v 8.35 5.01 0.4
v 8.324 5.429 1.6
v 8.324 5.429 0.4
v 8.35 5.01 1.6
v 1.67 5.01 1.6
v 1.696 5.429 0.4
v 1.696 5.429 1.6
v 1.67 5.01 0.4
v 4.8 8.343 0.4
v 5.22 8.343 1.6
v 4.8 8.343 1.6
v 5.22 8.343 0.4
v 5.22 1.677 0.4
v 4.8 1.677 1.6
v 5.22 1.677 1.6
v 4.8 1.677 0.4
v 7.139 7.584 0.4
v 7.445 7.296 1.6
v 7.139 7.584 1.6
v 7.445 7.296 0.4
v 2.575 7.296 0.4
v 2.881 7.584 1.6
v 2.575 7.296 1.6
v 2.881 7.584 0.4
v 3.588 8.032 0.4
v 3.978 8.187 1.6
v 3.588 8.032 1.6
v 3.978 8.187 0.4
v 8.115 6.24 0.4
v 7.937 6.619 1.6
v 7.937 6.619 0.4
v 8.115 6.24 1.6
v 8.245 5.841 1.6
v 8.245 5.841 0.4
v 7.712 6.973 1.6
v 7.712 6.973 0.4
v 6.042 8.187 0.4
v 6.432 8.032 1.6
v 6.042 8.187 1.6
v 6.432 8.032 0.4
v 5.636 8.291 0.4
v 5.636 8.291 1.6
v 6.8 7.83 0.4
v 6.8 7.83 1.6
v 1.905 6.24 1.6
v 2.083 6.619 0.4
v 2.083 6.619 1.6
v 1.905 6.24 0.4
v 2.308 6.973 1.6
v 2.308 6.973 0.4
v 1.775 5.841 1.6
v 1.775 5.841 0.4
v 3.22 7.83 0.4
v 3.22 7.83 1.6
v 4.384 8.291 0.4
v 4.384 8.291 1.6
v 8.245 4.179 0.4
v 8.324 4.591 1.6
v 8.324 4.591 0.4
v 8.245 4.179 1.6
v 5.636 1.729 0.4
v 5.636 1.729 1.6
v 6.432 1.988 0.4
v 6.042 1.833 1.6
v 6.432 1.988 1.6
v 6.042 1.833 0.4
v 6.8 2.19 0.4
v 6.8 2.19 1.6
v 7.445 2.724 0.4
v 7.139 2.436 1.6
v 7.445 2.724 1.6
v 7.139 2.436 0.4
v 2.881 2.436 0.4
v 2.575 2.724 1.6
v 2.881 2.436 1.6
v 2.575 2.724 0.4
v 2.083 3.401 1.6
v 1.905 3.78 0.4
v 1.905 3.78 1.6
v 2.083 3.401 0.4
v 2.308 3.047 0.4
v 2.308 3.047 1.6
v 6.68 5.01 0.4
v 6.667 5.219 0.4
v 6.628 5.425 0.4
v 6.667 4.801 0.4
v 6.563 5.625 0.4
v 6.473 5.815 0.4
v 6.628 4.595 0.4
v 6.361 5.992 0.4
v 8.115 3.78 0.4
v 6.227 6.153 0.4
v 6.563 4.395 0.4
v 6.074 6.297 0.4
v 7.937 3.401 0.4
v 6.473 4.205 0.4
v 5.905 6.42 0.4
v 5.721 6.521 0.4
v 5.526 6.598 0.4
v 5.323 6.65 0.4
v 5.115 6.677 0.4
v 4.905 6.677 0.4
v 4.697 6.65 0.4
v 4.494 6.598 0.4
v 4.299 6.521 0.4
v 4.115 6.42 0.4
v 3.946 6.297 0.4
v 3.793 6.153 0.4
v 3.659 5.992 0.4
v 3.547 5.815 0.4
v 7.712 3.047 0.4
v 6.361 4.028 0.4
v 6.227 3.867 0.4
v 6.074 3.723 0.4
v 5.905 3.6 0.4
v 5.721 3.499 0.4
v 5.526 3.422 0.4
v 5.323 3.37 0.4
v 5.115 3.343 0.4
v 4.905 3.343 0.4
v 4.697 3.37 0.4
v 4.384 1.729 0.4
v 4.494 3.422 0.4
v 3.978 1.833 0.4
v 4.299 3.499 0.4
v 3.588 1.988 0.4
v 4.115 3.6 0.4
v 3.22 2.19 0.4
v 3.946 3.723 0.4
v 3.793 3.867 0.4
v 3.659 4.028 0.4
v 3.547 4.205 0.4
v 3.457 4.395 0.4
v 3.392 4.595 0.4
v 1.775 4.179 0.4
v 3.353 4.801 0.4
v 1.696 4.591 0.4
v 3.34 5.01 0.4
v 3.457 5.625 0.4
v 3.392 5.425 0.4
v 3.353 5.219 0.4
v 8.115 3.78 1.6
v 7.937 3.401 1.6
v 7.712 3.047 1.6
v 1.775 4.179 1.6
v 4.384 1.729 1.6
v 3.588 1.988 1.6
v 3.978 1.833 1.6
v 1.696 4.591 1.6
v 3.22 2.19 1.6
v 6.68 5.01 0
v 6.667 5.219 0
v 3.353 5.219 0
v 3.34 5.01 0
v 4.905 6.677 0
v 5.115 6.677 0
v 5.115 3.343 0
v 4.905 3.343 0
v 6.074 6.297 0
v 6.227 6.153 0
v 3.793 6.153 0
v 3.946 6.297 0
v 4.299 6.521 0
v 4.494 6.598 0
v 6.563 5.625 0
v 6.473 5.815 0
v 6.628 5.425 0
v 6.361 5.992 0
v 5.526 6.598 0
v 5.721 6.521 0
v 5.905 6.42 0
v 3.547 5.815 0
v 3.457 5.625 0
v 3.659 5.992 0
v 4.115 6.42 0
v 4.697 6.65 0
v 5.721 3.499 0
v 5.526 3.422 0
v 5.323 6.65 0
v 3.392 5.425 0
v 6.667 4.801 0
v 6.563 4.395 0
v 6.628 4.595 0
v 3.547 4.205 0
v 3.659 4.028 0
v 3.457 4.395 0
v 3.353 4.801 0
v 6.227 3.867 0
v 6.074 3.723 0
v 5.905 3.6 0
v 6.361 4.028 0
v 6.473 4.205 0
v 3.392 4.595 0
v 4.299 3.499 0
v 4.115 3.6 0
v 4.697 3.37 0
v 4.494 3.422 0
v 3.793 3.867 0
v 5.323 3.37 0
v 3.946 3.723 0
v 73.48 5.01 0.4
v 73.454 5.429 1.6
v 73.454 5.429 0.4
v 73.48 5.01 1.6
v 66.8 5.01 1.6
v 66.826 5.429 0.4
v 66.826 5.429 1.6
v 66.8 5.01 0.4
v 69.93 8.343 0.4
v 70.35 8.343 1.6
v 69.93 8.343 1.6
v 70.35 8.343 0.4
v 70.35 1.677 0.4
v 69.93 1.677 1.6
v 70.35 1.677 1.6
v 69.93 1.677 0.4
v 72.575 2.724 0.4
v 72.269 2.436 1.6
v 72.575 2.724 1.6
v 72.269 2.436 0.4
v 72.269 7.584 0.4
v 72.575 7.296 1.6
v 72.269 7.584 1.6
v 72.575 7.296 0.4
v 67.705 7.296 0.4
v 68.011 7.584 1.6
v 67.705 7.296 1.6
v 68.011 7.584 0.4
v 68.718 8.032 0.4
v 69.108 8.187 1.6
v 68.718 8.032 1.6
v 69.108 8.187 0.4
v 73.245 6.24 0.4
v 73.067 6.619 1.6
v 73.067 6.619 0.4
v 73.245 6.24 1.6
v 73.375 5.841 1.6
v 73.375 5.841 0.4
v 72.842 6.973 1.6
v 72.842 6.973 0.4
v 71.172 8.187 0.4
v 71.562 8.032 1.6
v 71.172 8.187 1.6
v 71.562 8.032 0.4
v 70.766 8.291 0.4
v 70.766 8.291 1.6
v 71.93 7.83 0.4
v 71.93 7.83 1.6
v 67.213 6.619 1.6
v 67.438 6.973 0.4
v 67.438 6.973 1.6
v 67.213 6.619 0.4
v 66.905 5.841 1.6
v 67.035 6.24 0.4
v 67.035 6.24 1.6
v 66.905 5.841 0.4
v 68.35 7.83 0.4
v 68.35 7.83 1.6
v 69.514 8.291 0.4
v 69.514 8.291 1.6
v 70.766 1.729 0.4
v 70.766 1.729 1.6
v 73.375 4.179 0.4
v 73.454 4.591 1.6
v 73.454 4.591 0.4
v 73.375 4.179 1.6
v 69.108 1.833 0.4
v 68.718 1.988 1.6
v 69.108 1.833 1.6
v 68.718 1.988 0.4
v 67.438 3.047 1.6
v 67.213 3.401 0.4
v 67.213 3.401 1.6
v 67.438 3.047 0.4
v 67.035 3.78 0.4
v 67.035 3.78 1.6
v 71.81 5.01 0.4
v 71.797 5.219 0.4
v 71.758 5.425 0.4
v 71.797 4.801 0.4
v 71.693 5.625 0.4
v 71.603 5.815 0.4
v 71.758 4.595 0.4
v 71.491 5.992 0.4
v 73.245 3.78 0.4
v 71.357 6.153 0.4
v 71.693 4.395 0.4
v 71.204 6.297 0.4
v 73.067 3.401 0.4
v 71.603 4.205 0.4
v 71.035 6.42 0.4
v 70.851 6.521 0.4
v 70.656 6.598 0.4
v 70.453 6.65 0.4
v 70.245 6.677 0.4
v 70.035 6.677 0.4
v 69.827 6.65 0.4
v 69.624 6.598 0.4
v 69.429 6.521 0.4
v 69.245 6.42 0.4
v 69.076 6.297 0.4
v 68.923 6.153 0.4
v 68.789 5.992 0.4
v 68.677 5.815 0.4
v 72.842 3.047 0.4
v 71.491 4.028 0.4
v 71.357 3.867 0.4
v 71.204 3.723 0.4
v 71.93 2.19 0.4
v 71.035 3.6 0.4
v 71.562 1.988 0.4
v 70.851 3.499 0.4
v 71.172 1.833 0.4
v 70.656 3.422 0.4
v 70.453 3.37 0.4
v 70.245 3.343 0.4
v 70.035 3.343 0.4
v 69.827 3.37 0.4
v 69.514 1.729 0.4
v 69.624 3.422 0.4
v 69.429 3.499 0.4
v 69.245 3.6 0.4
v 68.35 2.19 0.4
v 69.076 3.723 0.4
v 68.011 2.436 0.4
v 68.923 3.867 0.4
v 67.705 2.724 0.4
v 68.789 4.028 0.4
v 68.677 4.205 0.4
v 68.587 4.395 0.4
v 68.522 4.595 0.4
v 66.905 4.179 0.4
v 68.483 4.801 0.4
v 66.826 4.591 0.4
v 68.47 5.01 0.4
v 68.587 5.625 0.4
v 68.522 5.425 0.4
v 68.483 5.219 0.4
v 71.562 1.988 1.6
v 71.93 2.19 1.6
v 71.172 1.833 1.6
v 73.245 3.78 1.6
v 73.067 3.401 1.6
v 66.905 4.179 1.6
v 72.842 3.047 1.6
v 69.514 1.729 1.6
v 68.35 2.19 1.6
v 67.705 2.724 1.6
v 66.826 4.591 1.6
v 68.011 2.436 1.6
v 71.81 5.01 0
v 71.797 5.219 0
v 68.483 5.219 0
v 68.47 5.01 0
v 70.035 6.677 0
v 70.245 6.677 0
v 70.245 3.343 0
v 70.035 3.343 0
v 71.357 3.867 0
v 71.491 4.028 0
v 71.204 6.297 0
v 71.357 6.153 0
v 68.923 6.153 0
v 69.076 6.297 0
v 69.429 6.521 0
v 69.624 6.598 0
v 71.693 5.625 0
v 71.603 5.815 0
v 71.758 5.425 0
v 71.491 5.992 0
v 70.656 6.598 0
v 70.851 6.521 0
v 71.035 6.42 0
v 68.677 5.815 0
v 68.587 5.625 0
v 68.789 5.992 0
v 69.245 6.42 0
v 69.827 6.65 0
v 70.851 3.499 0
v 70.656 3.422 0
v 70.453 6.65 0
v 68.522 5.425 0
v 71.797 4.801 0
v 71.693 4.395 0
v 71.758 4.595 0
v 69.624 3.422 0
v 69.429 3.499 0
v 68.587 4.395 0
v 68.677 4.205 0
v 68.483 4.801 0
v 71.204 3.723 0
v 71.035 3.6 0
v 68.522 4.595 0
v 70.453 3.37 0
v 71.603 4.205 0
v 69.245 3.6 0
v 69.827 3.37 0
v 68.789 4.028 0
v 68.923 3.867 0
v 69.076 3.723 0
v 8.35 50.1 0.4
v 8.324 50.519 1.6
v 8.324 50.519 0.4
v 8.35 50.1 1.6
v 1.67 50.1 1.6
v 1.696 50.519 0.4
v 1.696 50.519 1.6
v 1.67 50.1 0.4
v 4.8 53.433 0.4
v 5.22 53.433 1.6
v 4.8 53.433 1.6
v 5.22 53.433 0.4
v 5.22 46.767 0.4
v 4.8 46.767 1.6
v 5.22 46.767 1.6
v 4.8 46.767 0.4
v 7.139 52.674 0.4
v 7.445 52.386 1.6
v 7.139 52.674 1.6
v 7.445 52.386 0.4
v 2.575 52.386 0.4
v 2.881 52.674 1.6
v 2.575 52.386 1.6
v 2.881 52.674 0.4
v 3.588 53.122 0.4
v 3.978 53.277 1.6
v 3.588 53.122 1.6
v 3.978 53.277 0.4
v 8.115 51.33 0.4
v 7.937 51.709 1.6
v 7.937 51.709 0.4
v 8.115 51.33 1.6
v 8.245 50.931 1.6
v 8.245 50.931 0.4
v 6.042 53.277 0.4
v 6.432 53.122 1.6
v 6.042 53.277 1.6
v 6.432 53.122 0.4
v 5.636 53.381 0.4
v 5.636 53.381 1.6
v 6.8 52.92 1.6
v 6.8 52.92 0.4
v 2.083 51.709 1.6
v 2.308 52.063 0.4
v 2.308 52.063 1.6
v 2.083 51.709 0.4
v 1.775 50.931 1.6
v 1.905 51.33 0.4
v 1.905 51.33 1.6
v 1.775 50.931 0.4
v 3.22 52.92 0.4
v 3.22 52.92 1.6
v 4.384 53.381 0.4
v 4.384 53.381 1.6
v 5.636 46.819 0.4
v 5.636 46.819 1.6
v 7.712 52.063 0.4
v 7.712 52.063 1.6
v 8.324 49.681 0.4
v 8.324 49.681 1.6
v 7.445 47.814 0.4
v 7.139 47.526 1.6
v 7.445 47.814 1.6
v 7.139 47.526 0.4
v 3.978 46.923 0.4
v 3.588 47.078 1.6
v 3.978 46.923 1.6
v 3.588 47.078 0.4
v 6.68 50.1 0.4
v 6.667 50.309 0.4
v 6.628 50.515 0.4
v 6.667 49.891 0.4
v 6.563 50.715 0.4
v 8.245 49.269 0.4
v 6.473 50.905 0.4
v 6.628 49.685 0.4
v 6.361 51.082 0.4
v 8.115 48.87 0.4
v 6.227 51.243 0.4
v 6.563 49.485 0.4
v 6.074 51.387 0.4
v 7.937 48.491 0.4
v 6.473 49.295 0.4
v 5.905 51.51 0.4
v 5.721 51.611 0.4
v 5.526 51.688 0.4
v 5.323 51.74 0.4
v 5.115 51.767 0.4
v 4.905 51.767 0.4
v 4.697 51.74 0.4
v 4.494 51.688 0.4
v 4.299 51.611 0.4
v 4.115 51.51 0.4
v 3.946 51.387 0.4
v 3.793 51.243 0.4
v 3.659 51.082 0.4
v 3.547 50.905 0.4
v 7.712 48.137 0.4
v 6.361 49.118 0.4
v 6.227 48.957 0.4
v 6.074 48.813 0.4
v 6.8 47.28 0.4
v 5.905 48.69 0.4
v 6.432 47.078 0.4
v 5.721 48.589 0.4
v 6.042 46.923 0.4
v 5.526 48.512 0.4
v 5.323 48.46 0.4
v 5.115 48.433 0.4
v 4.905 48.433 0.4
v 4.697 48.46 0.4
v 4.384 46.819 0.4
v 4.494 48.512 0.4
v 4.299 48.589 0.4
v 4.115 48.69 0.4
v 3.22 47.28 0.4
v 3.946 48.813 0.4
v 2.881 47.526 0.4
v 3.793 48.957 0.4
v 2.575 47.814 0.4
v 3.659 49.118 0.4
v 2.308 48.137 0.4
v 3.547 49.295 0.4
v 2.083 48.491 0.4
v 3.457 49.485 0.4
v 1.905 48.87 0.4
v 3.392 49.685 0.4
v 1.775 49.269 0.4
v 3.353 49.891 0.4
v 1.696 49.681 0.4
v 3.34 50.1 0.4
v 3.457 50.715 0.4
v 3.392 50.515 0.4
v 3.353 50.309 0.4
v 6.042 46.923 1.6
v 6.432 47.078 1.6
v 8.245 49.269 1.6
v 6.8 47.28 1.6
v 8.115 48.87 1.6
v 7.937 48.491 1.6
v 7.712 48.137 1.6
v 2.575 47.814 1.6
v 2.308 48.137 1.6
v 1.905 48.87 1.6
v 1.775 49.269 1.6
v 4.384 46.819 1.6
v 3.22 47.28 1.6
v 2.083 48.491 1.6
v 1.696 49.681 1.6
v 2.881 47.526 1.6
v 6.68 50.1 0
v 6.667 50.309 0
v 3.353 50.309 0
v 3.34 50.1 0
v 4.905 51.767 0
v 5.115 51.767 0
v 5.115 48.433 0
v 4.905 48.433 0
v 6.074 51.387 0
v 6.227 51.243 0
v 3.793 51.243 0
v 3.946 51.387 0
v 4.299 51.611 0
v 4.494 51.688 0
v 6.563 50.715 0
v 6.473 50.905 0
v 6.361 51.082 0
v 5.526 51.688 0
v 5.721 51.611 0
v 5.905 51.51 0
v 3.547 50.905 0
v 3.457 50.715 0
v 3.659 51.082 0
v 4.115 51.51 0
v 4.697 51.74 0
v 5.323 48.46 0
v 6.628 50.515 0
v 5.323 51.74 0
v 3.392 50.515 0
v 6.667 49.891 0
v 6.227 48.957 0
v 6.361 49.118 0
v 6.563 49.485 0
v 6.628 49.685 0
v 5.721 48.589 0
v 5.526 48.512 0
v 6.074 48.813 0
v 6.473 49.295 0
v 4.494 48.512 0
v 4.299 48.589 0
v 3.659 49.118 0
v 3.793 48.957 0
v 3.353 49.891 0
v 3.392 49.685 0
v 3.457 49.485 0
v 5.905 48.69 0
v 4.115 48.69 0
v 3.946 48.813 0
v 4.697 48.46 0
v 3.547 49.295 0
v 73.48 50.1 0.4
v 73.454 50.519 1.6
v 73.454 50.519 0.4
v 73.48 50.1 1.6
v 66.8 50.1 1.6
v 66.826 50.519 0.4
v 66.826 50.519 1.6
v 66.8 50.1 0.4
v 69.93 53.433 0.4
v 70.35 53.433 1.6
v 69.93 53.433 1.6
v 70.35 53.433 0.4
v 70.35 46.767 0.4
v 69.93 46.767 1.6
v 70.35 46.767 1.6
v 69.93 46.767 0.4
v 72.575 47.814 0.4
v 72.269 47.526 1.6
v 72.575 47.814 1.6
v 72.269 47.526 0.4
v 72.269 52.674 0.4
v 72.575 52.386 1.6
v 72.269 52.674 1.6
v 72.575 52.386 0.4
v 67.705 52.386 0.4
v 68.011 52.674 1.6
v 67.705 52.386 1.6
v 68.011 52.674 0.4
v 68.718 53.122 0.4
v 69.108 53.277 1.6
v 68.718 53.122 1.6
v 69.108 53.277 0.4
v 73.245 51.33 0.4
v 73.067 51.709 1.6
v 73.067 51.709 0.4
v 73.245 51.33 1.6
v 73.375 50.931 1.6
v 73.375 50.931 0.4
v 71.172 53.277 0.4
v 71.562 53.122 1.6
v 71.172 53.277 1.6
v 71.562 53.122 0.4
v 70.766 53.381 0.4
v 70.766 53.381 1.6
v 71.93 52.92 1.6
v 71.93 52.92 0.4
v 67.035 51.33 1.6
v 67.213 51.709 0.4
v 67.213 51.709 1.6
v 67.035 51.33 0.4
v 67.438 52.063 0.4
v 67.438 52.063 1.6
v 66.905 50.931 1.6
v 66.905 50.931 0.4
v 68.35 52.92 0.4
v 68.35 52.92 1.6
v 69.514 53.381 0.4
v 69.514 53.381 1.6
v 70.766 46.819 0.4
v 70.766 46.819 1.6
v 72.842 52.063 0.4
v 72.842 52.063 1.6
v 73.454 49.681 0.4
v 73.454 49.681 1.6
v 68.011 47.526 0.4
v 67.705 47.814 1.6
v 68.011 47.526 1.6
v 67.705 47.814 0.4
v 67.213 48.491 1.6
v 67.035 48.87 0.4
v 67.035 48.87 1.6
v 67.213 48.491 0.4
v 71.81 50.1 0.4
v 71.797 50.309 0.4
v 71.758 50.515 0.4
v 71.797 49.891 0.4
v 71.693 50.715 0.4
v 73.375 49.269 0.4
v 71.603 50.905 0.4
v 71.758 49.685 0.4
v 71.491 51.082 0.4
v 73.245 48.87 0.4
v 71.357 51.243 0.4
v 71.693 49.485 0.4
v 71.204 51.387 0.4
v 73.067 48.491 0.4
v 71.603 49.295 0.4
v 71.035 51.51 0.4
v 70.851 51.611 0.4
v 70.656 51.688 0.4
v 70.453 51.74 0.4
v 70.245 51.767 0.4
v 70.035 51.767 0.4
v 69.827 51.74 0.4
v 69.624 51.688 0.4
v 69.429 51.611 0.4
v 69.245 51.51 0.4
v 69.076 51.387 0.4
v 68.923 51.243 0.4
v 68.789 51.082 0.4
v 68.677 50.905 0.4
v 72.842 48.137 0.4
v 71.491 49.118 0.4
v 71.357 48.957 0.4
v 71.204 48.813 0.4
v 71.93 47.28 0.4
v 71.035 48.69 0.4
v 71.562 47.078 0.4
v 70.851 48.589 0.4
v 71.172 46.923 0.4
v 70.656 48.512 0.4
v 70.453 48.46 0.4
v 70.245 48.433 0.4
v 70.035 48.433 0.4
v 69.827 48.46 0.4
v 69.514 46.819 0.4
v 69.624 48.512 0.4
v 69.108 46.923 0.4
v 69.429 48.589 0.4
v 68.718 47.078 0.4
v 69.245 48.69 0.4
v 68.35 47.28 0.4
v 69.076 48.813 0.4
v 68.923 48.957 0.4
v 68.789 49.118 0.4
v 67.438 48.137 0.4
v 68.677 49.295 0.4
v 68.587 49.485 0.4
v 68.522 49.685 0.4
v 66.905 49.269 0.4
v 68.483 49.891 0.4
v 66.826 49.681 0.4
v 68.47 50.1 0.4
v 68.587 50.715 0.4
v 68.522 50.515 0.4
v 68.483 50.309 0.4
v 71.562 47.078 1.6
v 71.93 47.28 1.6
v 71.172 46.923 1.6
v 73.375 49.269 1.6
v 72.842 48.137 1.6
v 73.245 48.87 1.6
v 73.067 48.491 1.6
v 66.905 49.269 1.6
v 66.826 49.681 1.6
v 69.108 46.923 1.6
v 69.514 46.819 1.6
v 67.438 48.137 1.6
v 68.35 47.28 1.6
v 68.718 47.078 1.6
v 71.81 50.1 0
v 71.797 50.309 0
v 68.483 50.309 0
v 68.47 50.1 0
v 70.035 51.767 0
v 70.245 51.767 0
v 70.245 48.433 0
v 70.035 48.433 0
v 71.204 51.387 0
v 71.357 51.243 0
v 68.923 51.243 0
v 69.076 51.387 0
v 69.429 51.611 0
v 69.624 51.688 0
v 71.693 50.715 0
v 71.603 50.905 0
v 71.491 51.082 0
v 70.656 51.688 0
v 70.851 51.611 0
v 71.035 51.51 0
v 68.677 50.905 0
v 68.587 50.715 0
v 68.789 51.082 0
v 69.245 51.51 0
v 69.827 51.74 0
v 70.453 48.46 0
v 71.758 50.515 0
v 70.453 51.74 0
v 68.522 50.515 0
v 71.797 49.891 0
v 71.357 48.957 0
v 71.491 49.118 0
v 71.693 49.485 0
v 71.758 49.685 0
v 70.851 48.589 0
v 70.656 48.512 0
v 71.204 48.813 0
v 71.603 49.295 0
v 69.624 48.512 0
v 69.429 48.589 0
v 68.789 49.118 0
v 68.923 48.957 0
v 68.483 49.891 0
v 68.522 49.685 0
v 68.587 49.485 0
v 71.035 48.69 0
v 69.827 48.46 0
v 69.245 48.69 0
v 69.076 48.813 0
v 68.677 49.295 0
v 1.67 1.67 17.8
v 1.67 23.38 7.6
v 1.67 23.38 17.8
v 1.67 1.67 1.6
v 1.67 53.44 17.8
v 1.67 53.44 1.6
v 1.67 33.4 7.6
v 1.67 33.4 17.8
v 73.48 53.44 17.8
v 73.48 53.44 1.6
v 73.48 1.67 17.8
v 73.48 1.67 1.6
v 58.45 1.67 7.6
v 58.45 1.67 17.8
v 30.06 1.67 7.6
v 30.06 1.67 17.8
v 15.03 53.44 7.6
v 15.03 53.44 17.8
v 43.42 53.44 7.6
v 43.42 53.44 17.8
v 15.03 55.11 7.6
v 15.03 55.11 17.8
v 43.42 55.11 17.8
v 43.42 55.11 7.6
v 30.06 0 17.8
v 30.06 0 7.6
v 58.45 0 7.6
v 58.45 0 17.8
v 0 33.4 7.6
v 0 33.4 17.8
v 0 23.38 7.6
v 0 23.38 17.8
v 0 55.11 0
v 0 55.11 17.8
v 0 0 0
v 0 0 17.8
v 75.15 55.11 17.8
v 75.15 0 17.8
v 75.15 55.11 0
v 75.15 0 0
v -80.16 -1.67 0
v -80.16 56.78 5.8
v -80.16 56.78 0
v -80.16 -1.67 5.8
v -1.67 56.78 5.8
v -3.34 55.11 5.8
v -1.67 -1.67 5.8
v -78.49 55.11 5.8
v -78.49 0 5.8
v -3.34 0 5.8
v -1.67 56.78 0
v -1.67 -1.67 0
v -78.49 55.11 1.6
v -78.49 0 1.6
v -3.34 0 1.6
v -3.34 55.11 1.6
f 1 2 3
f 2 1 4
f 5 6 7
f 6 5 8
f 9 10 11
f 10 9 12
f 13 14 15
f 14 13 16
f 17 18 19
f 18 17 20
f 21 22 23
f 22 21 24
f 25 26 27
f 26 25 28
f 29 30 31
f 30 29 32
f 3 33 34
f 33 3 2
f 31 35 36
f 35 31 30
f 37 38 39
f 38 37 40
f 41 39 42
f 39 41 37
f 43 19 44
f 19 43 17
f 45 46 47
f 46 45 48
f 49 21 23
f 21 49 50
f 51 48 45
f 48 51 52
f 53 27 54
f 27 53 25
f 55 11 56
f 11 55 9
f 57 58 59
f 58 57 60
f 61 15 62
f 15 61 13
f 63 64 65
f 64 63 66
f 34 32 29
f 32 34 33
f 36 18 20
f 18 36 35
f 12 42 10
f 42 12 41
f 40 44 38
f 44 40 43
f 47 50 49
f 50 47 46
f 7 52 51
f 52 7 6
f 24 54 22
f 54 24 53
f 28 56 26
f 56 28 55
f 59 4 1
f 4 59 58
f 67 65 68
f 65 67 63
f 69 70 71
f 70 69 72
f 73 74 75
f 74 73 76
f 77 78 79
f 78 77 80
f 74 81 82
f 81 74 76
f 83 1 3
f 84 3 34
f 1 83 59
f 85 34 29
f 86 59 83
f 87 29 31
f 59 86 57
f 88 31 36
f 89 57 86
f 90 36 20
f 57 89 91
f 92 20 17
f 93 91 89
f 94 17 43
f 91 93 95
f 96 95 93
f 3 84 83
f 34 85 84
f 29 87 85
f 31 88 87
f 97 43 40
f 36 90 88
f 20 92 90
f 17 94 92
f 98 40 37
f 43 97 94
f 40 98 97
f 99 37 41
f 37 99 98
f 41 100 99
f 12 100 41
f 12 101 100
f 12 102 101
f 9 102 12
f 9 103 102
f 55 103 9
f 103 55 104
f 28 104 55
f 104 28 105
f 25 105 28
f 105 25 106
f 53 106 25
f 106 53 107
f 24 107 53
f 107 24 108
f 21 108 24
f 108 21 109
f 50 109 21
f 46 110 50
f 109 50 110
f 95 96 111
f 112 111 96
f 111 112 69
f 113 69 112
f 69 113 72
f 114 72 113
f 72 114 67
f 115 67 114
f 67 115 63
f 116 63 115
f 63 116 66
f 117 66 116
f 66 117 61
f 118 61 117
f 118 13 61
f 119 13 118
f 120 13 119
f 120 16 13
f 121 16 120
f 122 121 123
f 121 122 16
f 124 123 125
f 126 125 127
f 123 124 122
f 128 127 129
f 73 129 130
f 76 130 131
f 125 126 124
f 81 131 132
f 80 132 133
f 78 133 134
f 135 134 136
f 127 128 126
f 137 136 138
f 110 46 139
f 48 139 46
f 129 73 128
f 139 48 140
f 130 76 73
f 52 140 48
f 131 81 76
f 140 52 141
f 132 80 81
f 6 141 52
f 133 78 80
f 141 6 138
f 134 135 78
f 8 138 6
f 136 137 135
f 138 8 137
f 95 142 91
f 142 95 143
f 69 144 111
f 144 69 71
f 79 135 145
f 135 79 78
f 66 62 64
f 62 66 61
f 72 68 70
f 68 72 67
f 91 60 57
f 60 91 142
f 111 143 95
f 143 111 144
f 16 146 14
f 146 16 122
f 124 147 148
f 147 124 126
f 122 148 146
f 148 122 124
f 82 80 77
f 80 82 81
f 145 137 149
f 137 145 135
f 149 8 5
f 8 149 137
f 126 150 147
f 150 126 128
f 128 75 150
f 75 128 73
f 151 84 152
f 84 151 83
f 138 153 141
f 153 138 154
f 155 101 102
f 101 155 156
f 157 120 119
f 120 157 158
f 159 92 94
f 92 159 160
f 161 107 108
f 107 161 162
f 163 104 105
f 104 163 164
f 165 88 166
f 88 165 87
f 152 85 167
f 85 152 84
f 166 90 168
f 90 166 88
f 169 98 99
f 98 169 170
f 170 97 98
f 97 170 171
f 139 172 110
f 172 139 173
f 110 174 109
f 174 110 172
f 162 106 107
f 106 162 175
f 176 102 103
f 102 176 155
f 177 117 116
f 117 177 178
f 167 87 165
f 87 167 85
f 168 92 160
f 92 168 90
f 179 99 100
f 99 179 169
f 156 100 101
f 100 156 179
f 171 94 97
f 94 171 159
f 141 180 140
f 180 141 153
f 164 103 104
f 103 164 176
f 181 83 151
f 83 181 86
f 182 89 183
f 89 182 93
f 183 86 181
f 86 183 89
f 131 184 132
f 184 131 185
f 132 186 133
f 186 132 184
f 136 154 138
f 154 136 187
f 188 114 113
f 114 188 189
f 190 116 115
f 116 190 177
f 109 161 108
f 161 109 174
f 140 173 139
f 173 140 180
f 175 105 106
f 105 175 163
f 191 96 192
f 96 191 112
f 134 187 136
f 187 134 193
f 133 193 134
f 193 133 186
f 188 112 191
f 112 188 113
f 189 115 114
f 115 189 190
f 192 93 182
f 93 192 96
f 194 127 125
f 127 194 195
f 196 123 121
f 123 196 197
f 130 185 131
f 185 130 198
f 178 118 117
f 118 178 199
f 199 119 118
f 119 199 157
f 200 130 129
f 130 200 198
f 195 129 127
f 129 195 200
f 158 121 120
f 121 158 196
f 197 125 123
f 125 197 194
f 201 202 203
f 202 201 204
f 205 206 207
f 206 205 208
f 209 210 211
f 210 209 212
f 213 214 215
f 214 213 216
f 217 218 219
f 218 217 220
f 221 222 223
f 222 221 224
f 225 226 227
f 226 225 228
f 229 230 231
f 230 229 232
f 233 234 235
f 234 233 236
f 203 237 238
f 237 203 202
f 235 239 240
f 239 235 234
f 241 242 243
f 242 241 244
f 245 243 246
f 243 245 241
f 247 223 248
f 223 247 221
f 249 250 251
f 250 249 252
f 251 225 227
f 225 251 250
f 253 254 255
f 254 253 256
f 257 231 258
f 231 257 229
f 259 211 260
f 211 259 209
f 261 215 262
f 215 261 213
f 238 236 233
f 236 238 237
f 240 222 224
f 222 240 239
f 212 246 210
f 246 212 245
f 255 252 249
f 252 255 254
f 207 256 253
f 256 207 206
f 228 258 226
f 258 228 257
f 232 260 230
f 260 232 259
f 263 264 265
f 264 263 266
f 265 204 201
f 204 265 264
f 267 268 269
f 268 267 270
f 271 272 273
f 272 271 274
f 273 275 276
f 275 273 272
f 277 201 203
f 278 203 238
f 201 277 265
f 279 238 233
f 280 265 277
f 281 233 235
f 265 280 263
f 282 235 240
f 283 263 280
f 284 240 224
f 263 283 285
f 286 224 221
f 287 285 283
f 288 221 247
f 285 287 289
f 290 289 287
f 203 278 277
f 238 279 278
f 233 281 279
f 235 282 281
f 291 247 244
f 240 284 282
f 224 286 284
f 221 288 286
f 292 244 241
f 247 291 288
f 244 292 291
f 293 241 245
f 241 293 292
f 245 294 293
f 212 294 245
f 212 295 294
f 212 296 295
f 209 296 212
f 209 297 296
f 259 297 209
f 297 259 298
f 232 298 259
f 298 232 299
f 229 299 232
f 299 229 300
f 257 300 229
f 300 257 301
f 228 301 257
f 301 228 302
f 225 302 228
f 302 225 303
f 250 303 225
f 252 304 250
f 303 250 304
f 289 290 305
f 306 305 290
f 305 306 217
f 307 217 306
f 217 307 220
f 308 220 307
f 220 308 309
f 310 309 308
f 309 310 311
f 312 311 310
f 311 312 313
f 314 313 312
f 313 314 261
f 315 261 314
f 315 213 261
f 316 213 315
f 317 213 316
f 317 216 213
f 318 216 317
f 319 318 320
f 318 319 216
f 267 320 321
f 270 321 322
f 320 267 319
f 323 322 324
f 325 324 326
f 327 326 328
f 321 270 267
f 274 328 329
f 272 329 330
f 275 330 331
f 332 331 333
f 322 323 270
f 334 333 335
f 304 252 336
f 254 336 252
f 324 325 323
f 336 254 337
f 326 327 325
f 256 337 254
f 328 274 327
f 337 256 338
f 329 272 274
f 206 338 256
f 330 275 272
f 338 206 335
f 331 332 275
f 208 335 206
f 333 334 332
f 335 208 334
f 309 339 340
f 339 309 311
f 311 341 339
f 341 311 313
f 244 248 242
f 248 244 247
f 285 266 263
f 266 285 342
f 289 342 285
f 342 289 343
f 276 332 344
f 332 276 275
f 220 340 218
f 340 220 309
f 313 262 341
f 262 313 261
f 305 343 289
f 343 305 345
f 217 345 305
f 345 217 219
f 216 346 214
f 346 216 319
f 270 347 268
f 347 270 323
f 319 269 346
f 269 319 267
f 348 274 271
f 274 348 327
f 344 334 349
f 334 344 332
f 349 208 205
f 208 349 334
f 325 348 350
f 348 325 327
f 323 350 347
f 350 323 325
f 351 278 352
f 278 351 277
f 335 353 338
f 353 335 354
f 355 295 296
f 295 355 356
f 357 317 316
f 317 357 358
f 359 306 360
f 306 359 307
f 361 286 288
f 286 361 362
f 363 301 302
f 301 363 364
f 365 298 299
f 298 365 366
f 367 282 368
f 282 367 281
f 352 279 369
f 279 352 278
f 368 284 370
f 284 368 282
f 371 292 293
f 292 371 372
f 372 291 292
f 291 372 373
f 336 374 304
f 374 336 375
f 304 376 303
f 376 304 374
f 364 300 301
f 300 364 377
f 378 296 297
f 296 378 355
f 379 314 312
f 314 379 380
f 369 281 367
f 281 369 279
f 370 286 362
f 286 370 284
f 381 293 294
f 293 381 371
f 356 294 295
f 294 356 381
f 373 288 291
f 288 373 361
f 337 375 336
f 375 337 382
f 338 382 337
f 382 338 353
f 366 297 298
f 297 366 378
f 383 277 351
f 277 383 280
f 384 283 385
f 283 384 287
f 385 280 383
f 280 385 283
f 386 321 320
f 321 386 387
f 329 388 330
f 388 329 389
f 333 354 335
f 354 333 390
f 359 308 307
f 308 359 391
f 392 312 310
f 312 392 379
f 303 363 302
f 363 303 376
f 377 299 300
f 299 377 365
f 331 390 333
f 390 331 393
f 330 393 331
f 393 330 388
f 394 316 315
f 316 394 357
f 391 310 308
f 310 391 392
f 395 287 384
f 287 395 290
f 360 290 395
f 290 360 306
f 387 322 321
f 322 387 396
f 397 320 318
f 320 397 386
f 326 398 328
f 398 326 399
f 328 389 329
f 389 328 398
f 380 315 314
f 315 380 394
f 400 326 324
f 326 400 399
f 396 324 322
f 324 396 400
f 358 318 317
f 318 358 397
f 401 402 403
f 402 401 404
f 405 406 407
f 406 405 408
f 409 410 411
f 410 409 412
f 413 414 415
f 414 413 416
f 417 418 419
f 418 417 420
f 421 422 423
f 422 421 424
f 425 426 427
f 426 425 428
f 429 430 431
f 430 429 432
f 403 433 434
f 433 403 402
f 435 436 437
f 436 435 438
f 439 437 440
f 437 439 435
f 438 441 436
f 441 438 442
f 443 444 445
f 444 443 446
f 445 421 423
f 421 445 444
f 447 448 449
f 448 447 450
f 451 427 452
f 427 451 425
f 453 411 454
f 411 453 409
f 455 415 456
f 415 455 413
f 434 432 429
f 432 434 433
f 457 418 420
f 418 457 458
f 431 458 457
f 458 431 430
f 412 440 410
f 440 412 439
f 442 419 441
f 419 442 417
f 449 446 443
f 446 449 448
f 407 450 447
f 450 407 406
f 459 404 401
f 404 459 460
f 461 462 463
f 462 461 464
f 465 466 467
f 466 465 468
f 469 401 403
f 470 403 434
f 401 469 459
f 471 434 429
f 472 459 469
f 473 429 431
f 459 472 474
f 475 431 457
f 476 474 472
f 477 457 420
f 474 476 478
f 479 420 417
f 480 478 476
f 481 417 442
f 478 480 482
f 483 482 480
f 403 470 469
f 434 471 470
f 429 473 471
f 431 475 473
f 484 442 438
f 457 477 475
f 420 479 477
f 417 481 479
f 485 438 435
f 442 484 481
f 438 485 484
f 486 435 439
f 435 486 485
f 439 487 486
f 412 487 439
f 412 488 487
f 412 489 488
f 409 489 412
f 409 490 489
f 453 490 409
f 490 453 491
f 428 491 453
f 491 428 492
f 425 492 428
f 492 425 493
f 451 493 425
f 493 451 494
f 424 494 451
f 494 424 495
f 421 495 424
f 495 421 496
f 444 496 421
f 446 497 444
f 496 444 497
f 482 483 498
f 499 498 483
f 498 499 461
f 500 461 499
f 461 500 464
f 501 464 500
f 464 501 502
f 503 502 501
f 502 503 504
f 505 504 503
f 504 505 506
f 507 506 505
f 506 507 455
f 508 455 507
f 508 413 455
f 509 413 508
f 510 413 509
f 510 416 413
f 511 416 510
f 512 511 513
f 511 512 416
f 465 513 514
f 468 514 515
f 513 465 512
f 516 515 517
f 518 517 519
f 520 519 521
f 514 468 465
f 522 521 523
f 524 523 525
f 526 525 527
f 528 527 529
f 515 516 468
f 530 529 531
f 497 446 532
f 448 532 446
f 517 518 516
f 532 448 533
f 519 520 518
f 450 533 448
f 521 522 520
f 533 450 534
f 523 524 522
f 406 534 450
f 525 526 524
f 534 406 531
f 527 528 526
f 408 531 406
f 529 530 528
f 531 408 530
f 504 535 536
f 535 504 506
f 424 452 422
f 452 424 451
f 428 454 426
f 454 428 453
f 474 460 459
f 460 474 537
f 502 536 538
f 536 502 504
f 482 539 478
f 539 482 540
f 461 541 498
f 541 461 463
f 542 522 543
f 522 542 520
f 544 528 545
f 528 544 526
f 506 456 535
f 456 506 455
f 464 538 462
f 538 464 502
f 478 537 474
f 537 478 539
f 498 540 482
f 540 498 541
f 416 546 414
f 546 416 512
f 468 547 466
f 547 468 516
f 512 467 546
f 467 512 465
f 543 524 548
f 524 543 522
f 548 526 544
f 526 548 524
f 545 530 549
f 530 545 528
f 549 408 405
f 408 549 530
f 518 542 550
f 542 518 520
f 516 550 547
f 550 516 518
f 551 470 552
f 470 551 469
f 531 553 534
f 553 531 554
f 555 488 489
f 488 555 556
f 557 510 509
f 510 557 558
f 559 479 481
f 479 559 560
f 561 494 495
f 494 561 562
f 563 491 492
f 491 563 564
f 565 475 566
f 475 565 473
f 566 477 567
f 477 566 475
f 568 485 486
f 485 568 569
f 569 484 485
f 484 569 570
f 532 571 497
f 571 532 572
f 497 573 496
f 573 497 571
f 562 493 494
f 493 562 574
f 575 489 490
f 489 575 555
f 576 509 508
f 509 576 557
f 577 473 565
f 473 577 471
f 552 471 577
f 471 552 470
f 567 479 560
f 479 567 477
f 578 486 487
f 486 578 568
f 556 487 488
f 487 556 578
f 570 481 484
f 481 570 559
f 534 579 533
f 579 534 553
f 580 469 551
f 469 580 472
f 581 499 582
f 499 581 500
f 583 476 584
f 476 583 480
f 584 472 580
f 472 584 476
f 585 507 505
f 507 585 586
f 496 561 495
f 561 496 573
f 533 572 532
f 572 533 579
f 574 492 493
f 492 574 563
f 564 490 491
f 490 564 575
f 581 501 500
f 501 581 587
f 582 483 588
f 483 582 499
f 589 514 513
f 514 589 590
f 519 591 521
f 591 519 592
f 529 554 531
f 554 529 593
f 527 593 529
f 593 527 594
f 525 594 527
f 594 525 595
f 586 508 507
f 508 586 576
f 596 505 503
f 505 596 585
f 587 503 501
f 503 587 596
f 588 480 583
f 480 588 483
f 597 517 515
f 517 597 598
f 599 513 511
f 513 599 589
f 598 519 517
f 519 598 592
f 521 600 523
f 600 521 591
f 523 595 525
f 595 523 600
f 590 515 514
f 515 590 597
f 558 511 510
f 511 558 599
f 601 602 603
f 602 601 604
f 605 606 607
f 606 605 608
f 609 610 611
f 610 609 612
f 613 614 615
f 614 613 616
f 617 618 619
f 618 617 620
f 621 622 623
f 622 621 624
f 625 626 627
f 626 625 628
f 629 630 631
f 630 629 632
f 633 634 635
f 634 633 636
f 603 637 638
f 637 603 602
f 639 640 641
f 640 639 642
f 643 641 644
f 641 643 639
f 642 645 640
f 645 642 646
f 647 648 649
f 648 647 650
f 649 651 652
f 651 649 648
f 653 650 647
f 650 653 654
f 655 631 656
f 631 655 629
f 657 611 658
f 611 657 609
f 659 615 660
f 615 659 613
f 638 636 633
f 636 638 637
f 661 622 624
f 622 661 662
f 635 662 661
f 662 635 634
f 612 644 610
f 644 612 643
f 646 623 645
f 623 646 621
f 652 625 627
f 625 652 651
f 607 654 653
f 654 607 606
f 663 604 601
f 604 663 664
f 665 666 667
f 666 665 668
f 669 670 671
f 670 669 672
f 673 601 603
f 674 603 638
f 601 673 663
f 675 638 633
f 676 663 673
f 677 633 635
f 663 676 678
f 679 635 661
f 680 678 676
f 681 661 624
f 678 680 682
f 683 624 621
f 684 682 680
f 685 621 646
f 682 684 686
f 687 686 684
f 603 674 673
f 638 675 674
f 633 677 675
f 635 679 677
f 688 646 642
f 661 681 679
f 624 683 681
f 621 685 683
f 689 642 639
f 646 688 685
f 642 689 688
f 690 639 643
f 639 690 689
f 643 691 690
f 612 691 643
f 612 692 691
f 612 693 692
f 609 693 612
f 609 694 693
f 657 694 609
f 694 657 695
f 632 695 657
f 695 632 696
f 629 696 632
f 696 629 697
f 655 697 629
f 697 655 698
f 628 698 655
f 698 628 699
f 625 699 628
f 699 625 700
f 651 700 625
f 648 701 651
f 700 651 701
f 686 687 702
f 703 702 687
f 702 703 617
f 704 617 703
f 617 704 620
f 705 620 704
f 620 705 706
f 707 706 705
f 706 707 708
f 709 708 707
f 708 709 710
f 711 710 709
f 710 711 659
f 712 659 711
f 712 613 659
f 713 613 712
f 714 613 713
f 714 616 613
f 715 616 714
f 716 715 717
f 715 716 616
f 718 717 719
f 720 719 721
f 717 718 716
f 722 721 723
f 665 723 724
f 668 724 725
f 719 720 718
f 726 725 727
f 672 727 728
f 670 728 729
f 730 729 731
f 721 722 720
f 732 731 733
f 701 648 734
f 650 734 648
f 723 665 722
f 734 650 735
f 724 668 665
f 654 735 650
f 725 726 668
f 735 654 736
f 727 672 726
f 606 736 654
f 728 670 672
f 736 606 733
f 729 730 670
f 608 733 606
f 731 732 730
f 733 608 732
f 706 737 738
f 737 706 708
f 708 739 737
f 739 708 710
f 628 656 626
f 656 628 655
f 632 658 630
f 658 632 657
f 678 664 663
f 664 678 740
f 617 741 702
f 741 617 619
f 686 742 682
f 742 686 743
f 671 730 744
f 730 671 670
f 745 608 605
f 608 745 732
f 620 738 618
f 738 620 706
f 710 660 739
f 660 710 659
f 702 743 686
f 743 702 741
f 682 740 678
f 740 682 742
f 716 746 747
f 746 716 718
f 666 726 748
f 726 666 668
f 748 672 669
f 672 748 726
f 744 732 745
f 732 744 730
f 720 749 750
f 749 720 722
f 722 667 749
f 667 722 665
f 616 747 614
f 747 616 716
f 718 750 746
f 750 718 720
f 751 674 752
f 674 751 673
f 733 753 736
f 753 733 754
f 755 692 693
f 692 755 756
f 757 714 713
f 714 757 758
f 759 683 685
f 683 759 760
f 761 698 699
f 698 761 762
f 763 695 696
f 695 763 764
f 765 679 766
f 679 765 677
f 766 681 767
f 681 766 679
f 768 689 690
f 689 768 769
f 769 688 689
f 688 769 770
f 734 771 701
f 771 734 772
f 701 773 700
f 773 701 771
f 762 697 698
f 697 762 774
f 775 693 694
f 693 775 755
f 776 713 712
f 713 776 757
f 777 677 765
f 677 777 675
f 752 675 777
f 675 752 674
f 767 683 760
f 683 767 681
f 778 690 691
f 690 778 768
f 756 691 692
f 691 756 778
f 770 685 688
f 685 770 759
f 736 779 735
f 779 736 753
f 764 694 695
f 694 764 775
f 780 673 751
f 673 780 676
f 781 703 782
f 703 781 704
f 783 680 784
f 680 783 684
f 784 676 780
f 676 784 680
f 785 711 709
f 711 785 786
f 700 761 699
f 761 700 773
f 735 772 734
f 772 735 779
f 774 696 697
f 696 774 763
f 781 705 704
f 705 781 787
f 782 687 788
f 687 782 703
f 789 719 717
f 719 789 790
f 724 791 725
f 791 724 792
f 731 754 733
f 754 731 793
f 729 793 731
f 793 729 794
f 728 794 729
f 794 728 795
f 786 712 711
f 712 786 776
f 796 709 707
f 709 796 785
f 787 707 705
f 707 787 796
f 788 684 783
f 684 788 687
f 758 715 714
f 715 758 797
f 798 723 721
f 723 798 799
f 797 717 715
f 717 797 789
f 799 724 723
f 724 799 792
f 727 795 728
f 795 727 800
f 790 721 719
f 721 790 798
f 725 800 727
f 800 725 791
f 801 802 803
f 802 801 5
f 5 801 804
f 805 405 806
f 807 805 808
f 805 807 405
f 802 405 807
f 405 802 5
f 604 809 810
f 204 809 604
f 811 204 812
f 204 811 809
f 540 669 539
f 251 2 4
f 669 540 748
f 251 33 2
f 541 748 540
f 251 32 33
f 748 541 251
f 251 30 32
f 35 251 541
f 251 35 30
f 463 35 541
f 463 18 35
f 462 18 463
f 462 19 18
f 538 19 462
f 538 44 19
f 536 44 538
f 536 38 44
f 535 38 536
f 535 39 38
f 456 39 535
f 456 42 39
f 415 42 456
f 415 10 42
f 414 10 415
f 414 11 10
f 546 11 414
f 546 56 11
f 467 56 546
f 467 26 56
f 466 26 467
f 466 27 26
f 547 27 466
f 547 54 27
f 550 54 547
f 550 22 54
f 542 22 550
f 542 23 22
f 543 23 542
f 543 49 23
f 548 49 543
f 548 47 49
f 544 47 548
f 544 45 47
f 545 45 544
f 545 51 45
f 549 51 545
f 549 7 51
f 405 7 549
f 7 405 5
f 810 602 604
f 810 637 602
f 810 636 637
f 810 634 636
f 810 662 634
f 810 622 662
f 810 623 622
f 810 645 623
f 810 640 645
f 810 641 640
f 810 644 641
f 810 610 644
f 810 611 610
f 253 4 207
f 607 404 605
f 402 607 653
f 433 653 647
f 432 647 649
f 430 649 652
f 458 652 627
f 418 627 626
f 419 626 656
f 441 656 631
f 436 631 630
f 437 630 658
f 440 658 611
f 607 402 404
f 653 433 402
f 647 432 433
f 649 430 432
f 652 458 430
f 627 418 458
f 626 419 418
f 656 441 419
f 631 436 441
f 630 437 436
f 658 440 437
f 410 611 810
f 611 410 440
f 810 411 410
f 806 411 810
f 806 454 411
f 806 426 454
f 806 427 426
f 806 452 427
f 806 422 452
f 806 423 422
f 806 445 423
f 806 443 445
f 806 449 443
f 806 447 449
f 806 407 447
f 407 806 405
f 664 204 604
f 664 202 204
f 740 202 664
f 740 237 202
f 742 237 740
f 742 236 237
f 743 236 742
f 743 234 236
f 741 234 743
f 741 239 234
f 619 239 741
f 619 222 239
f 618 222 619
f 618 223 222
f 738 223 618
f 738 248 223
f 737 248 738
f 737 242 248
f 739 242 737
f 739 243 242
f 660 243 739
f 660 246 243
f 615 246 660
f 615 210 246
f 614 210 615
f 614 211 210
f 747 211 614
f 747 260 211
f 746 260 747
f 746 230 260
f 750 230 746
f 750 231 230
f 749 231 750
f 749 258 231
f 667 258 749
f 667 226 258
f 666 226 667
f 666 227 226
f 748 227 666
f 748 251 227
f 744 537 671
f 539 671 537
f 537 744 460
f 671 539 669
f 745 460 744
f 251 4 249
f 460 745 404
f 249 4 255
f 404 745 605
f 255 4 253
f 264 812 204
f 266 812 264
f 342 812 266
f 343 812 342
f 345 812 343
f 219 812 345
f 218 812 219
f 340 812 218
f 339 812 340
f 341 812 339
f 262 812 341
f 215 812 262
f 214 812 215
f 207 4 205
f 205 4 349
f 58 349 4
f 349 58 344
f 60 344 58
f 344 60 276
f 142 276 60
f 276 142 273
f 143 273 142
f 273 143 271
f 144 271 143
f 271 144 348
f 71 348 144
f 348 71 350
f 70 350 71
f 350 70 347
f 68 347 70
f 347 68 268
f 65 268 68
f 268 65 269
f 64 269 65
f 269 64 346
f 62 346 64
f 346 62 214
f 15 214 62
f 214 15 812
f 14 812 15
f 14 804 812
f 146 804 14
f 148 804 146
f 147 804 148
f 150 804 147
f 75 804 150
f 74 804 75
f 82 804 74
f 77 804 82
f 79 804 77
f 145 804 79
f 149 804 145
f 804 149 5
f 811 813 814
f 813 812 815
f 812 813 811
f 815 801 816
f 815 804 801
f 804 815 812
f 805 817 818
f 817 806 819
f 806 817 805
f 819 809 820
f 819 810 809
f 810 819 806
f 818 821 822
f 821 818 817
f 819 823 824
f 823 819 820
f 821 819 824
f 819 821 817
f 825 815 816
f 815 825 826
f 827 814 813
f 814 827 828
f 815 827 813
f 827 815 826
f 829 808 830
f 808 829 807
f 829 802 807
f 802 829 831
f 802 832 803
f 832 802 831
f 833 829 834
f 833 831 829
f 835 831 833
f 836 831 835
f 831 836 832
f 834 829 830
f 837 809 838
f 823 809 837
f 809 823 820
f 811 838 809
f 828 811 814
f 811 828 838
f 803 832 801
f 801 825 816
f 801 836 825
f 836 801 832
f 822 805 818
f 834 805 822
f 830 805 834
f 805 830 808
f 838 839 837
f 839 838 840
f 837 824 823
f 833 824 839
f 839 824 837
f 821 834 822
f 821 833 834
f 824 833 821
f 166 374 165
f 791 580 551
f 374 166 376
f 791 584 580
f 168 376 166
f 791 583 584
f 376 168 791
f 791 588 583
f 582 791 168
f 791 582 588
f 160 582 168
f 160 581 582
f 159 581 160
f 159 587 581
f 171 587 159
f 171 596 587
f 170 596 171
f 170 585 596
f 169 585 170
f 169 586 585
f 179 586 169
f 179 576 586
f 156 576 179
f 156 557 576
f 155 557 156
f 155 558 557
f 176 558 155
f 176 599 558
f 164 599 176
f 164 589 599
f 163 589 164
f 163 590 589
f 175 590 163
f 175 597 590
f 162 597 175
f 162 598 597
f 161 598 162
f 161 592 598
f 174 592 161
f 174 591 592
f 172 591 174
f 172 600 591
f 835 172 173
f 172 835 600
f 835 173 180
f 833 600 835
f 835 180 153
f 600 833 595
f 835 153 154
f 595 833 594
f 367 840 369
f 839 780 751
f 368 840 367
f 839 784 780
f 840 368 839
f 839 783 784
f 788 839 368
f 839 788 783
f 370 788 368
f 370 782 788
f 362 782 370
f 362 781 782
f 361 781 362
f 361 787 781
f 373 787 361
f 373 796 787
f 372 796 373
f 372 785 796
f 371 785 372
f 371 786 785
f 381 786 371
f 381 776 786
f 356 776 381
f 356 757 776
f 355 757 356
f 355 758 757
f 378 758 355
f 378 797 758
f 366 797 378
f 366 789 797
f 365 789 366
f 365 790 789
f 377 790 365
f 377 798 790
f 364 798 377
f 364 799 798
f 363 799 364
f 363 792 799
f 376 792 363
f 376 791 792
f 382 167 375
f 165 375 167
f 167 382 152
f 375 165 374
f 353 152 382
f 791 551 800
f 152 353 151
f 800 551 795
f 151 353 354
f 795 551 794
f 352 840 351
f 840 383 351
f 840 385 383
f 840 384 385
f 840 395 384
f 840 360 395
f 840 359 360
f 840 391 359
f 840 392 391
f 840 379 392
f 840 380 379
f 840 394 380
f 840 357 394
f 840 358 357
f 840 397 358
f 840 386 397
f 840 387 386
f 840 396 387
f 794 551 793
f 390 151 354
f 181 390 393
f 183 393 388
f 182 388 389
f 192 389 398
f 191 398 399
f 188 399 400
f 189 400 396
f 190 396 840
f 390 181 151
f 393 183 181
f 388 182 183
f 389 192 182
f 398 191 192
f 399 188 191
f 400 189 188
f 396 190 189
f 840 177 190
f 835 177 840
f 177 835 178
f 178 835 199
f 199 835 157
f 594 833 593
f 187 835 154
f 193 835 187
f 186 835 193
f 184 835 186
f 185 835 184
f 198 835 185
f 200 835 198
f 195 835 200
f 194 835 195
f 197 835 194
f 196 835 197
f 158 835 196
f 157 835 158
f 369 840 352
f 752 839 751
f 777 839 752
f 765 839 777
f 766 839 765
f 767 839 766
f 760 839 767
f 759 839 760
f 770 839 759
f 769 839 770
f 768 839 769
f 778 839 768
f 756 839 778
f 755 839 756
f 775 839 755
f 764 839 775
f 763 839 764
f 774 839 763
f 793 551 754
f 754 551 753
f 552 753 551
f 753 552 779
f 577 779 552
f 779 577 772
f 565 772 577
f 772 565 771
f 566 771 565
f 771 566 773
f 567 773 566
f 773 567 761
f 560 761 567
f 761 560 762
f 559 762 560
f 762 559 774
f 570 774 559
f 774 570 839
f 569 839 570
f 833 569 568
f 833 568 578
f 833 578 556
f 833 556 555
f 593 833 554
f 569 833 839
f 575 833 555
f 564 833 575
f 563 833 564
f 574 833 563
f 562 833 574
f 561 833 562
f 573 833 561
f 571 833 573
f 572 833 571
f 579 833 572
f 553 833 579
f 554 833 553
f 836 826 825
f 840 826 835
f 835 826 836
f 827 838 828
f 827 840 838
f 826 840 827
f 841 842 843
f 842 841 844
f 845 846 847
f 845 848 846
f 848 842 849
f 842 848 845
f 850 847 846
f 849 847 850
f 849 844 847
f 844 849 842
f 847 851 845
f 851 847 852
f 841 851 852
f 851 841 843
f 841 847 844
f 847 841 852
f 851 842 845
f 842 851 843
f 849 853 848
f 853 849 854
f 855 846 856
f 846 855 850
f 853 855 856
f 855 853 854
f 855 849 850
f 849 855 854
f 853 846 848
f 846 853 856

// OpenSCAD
first_layer_height = 0.4;
layer_height = 0.6;

bottom_width = first_layer_height + 2*layer_height;
top_width = 2*layer_height;
wall_width = 1.67;

function xy_dim_adj(x) = ceil(x/wall_width)*wall_width;
function  z_dim_adj(z) = ceil(z/layer_height)*layer_height;

box_l = 71;
box_w = 51;
box_h = 16;
box_bt_h = 6;
cap_h = 4;

box_l_adj = xy_dim_adj(box_l);
box_w_adj = xy_dim_adj(box_w);
box_h_adj = z_dim_adj(box_h);
box_bt_h_adj = z_dim_adj(box_bt_h);
cap_h_adj = z_dim_adj(cap_h);

screws_hd = 5.55;
screws_hh = 2.38;
screws_hd_offset = first_layer_height;
screws_d = 3;
screws_xy = [
  [            3*wall_width, 3*wall_width],
  [box_l_adj - 1*wall_width, 3*wall_width],
  [            3*wall_width, box_w_adj-1*wall_width],
  [box_l_adj - 1*wall_width, box_w_adj-1*wall_width]
];

screws_hd_adj = xy_dim_adj(screws_hd);
screws_d_adj = xy_dim_adj(screws_d);

difference() {
  cube([box_l_adj+2*wall_width, box_w_adj+2*wall_width, box_h_adj+bottom_width]);
  union() {
    translate([wall_width, wall_width, bottom_width])
      cube([box_l_adj, box_w_adj, box_h_adj+bottom_width]);
    
    translate([xy_dim_adj(12)+wall_width, box_w_adj, bottom_width+box_bt_h_adj])
      cube([xy_dim_adj(28), 3*wall_width, box_h_adj+bottom_width]);
    translate([xy_dim_adj(27)+wall_width, -wall_width, bottom_width+box_bt_h_adj])
      cube([xy_dim_adj(28), 3*wall_width, box_h_adj+bottom_width]);
      
    translate([-wall_width, xy_dim_adj(21)+wall_width,, bottom_width+box_bt_h_adj])
      cube([3*wall_width, xy_dim_adj(10), box_h_adj+bottom_width]);
    
    for(xy = screws_xy) {
      translate([xy[0], xy[1], screws_hd_offset])
        cylinder(h=bottom_width, d=screws_hd_adj, $fn=50, center=false);
      translate([xy[0], xy[1], 0])
        cylinder(h=3*bottom_width, d=screws_d_adj, $fn=50, center=true);
    }
  }
}

// cap
translate([-box_l_adj-4*wall_width, 0, 0])
difference() {
  translate([-wall_width, -wall_width, 0])
    cube([box_l_adj+4*wall_width, box_w_adj+4*wall_width, cap_h_adj+bottom_width]);
  translate([0, 0, bottom_width])
    cube([box_l_adj+2*wall_width, box_w_adj+2*wall_width, cap_h_adj+2*bottom_width]);
}
